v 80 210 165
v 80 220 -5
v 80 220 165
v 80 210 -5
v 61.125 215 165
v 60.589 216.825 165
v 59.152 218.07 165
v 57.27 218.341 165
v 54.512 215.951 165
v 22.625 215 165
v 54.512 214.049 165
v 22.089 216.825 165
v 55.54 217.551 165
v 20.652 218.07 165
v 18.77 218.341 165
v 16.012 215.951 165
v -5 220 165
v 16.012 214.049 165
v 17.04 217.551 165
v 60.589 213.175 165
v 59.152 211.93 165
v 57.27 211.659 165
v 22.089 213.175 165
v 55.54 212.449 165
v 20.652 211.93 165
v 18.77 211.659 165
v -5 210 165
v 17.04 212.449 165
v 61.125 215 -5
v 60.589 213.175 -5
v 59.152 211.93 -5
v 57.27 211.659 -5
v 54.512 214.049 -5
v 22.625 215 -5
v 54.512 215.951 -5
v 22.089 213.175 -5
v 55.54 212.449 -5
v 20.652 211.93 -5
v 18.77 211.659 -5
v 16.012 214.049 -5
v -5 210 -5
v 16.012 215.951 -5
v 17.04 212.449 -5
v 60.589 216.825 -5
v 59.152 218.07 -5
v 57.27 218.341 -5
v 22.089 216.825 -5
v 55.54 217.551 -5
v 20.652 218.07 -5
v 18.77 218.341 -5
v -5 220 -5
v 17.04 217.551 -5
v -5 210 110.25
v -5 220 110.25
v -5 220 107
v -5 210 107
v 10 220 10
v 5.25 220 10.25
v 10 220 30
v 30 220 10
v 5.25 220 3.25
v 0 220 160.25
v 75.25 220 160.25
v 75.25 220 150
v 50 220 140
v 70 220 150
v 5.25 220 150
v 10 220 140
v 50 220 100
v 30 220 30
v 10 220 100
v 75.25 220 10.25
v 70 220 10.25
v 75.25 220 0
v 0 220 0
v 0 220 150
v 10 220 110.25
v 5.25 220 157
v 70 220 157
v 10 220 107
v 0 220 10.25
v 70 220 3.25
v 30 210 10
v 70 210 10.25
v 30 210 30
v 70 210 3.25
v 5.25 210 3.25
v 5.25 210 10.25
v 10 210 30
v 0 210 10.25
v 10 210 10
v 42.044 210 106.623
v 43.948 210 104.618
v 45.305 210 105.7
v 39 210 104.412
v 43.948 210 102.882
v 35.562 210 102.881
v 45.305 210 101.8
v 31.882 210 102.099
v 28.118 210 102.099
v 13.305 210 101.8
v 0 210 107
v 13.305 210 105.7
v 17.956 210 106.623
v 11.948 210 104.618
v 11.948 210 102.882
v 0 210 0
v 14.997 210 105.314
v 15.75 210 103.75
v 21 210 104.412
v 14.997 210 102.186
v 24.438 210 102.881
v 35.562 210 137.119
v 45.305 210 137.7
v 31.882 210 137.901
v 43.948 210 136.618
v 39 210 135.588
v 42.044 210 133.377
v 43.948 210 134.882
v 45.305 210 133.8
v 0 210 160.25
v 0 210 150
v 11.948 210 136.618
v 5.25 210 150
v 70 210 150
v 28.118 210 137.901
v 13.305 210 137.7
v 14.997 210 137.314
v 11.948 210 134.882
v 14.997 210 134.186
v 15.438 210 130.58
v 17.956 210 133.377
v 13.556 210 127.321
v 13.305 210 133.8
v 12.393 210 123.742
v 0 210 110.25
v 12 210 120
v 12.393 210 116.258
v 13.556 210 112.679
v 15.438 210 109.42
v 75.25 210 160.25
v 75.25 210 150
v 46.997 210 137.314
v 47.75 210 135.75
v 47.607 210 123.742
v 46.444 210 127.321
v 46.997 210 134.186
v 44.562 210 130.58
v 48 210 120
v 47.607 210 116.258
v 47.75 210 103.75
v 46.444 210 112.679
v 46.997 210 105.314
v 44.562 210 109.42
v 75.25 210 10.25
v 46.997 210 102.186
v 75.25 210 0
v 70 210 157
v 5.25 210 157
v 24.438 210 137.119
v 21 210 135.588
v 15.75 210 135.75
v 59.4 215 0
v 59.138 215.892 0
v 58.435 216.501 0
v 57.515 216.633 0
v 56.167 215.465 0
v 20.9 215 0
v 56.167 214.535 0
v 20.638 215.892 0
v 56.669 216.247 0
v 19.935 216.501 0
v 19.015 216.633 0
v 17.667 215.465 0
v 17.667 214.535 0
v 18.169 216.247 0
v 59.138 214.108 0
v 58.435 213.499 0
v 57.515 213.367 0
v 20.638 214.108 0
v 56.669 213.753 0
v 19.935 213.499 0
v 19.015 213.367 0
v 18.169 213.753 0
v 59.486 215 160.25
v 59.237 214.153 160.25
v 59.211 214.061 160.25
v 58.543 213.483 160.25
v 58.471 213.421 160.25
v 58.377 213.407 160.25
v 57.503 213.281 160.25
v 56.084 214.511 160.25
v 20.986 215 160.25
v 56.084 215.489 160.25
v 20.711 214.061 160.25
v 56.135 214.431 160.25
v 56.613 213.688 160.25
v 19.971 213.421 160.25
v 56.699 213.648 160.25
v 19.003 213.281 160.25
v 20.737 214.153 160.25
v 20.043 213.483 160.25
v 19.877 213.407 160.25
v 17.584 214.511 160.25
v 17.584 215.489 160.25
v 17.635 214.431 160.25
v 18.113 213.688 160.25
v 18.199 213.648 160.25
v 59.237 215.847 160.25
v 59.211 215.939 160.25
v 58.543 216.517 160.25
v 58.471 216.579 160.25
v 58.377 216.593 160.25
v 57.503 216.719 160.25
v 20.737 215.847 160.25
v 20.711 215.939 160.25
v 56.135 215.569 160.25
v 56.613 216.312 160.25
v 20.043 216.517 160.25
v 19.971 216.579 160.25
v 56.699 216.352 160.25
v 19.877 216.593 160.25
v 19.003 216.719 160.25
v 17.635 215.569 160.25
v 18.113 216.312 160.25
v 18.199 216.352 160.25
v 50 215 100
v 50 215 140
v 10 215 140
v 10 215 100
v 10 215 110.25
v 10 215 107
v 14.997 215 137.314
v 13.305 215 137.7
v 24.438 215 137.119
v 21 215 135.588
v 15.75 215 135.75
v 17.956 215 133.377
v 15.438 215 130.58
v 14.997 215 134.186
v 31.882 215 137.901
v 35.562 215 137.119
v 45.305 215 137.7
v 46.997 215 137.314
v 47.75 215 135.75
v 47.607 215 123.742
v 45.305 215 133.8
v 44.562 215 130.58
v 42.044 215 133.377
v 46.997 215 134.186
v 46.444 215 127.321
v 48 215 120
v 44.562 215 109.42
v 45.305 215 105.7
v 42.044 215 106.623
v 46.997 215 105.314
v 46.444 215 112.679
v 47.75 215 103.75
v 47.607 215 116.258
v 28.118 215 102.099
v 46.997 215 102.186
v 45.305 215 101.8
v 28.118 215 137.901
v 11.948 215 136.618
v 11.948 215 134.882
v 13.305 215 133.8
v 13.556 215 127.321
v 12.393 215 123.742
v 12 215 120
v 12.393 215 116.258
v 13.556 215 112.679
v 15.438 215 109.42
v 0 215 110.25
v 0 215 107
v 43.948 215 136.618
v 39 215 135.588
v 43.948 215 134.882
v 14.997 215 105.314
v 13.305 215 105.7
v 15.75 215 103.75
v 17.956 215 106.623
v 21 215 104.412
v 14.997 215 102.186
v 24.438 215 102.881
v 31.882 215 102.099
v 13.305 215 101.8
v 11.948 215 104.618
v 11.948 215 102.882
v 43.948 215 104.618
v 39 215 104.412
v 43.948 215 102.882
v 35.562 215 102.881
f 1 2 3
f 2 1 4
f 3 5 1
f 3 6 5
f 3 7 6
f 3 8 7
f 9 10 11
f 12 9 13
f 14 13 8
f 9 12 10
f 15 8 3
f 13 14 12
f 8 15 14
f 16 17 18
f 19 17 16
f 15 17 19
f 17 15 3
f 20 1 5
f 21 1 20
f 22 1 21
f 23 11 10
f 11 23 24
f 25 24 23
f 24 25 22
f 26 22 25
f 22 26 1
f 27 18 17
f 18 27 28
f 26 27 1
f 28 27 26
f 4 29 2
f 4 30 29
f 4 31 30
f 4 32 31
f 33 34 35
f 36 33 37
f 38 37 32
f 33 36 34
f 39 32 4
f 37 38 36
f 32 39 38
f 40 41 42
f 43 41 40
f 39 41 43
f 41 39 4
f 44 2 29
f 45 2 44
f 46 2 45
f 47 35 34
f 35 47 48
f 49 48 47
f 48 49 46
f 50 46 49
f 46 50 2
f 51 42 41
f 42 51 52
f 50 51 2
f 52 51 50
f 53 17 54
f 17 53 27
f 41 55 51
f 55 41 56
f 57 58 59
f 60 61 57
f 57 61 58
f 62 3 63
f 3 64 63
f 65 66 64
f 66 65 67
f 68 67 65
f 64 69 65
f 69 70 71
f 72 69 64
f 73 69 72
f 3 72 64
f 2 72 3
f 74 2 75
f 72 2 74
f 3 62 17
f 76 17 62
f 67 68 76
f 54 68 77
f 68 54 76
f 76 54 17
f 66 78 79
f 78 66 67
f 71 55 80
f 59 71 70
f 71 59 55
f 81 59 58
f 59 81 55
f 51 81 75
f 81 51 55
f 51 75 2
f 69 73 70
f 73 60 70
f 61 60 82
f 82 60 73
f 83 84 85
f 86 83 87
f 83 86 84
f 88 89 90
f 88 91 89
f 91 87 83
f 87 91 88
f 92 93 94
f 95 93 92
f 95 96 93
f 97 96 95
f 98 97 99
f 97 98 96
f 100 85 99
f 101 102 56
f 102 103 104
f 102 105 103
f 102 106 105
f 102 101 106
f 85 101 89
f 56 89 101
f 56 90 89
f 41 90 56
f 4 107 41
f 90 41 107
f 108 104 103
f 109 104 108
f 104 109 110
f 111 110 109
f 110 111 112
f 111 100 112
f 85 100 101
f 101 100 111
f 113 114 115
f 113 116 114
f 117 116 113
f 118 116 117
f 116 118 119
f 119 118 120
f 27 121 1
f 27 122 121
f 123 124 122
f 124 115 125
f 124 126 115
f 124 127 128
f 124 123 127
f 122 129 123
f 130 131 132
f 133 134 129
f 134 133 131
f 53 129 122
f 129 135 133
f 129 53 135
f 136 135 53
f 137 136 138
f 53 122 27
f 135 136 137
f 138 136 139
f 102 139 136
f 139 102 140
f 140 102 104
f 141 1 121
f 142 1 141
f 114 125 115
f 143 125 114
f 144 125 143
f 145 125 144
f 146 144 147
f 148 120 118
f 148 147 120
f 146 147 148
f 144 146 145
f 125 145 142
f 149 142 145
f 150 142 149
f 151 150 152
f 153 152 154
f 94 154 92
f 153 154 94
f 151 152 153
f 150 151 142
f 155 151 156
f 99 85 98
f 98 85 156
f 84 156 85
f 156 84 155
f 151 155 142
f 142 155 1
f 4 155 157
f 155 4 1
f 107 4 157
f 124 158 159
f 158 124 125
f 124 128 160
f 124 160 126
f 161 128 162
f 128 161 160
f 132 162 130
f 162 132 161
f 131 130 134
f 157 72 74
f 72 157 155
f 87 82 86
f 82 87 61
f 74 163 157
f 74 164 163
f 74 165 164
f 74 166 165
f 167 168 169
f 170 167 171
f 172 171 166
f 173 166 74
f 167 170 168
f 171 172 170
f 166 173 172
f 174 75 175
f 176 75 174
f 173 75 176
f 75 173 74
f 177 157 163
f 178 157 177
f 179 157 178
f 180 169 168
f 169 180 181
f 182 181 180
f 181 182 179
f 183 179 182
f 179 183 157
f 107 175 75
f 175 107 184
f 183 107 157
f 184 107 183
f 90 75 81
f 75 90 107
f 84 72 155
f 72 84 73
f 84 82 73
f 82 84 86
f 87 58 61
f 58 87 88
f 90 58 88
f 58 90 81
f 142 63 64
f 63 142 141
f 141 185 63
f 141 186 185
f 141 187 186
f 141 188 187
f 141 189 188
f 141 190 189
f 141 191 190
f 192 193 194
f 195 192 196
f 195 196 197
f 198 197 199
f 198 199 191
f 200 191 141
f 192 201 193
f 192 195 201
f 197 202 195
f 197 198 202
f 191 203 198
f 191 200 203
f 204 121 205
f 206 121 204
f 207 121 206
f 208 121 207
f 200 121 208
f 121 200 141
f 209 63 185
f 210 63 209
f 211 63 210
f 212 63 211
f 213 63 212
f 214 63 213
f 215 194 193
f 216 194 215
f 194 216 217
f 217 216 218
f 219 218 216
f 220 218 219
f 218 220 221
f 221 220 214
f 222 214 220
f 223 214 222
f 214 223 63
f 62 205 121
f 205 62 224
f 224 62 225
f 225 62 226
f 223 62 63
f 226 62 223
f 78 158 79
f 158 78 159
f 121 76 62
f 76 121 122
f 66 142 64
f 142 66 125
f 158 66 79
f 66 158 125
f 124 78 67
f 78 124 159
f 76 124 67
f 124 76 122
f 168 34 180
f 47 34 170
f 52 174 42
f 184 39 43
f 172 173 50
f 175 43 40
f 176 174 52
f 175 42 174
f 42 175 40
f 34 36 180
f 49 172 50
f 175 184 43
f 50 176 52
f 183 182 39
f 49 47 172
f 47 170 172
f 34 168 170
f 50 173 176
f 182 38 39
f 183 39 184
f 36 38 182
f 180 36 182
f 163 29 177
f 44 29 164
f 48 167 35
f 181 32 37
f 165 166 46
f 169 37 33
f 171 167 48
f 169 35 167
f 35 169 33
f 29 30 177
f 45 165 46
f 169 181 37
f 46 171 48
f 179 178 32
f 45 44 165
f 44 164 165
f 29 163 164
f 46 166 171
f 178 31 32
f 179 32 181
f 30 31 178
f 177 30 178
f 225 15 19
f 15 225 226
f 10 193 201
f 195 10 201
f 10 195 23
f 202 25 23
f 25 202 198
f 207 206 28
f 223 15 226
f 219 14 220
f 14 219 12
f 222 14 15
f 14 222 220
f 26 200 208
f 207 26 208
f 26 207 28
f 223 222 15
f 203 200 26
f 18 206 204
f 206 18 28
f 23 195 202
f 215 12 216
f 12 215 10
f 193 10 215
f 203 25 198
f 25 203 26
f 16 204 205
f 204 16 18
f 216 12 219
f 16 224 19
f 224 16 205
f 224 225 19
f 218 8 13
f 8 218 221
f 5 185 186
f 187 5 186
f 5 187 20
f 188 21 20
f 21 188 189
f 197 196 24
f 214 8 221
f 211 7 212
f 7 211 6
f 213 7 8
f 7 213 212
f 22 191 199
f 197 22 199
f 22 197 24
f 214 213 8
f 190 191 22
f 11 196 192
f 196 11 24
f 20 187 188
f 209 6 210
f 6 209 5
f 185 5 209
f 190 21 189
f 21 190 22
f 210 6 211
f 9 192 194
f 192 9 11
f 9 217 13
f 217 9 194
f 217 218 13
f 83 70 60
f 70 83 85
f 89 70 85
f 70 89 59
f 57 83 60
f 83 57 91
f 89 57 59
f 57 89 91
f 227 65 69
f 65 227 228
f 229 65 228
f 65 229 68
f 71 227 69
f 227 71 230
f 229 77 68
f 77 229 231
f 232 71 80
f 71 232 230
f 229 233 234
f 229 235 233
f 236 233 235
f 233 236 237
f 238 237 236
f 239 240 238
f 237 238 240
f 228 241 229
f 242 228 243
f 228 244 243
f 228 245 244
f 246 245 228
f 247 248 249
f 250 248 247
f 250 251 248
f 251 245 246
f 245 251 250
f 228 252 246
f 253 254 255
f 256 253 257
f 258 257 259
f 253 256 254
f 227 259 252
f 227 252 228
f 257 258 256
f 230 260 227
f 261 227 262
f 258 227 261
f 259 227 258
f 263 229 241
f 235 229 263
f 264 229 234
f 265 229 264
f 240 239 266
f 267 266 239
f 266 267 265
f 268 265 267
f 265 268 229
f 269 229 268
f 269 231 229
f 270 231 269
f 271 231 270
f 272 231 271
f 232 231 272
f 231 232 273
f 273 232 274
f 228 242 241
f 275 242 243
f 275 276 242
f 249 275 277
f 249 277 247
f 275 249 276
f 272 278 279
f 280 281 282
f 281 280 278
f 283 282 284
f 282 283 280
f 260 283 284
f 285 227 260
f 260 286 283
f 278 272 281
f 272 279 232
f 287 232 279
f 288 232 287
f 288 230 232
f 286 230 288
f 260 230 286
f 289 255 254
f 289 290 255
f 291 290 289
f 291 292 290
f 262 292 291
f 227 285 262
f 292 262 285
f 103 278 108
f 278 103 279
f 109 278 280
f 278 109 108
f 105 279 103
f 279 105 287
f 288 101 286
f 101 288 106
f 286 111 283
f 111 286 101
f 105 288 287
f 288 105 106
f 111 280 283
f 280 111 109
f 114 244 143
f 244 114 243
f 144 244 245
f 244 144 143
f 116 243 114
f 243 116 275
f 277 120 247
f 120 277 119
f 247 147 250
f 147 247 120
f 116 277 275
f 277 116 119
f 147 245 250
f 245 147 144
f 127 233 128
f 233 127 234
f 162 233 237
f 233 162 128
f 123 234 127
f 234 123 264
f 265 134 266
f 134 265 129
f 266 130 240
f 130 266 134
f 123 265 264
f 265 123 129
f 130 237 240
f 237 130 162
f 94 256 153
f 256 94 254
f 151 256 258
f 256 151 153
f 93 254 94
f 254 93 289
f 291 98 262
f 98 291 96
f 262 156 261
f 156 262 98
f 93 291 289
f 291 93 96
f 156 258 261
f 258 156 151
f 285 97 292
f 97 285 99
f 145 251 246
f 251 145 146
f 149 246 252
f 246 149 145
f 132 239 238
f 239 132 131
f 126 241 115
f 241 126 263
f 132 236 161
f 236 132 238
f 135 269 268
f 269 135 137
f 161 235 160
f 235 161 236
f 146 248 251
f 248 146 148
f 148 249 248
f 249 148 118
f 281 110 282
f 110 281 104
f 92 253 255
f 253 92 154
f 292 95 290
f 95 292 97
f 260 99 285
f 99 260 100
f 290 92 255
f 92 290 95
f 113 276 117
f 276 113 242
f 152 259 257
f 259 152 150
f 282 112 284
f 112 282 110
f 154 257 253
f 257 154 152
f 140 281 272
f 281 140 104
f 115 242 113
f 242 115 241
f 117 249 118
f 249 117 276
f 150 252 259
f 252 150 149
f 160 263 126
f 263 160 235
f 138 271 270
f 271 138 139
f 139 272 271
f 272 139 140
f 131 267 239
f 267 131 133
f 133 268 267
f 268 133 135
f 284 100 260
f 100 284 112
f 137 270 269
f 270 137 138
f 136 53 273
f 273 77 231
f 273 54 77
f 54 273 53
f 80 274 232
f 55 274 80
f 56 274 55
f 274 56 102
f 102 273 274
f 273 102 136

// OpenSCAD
//
// Base

base_thickness = 10;
base_length = 170;

//rotate([90,0,0]){
    difference(){
        // Base 
        translate([-5,210,-5]){
            cube([85,base_thickness,base_length]);
        }

        // Bottom Rails
        translate([0,210,0]){
            cube([75.25,base_thickness,3.25]);
        }
        translate([70,210,0]){
            cube([5.25,base_thickness,10.25]);
        }
        translate([0,210,0]){
            cube([5.25,base_thickness,10.25]);
        }

        // Top Rails
        translate([0,210,157]){
            cube([75.25,base_thickness,3.25]);
        }
        translate([70,210,150]){
            cube([5.25,base_thickness,10.25]);
        }
        translate([0,210,150]){
            cube([5.25,base_thickness,10.25]);
        }

        // Left Stabalizer screw hold
        translate([19.25,215,0]){
            rotate([180,0,0]){
                cylinder(5, 1.65, 3.375);
            }
        }

        // Left Stabalizer screw hold
        translate([57.75,215,0]){
            rotate([180,0,0]){
                cylinder(5, 1.65, 3.375);
            }
        }

        // Right Stabalizer screw hold
        translate([19.25,215, 165]){
            rotate([180,0,0]){
                cylinder(5, 3.375, 1.65);
            }
        }

        // Right Stabalizer screw hold
        translate([57.75,215,165]){
            rotate([180,0,0]){
                cylinder(5, 3.375, 1.65);
            }
        }

        // Cable Hole
        translate([10,210,10]){
            cube([20,10,20]);    
        }

        // Fan Mount
        translate([10,215,100]){
            cube([40,5,40]);    
        }

        translate([13.75,218,103.75]){
            rotate([90,0,0]){
                cylinder(12,2,2);
            }
        }

        translate([45.75,218,135.75]){
            rotate([90,0,0]){
                cylinder(12,2,2);
            }
        }

        translate([13.75,218,135.75]){
            rotate([90,0,0]){
                cylinder(12,2,2);
            }
        }

        translate([45.75,218,103.75]){
            rotate([90,0,0]){
                cylinder(12,2,2);
            }
        }

        translate([30,218,120]){
            rotate([90,0,0]){
                cylinder(18,18,18);
            }
        }

        // Cable gutter for fan
        translate([-10,215,107]){
            cube([20,5,3.25]);
        }

        // Cable notch for fan
        translate([-5,208,107]){
            cube([5,15,3.25]);
        }

    }
//}




/*difference(){
        translate([30,220,20]){
            cube([20,50,120]);    
        }

        translate([30,220,40]){
            cube([10,30,80]);    
        }
    }*/
